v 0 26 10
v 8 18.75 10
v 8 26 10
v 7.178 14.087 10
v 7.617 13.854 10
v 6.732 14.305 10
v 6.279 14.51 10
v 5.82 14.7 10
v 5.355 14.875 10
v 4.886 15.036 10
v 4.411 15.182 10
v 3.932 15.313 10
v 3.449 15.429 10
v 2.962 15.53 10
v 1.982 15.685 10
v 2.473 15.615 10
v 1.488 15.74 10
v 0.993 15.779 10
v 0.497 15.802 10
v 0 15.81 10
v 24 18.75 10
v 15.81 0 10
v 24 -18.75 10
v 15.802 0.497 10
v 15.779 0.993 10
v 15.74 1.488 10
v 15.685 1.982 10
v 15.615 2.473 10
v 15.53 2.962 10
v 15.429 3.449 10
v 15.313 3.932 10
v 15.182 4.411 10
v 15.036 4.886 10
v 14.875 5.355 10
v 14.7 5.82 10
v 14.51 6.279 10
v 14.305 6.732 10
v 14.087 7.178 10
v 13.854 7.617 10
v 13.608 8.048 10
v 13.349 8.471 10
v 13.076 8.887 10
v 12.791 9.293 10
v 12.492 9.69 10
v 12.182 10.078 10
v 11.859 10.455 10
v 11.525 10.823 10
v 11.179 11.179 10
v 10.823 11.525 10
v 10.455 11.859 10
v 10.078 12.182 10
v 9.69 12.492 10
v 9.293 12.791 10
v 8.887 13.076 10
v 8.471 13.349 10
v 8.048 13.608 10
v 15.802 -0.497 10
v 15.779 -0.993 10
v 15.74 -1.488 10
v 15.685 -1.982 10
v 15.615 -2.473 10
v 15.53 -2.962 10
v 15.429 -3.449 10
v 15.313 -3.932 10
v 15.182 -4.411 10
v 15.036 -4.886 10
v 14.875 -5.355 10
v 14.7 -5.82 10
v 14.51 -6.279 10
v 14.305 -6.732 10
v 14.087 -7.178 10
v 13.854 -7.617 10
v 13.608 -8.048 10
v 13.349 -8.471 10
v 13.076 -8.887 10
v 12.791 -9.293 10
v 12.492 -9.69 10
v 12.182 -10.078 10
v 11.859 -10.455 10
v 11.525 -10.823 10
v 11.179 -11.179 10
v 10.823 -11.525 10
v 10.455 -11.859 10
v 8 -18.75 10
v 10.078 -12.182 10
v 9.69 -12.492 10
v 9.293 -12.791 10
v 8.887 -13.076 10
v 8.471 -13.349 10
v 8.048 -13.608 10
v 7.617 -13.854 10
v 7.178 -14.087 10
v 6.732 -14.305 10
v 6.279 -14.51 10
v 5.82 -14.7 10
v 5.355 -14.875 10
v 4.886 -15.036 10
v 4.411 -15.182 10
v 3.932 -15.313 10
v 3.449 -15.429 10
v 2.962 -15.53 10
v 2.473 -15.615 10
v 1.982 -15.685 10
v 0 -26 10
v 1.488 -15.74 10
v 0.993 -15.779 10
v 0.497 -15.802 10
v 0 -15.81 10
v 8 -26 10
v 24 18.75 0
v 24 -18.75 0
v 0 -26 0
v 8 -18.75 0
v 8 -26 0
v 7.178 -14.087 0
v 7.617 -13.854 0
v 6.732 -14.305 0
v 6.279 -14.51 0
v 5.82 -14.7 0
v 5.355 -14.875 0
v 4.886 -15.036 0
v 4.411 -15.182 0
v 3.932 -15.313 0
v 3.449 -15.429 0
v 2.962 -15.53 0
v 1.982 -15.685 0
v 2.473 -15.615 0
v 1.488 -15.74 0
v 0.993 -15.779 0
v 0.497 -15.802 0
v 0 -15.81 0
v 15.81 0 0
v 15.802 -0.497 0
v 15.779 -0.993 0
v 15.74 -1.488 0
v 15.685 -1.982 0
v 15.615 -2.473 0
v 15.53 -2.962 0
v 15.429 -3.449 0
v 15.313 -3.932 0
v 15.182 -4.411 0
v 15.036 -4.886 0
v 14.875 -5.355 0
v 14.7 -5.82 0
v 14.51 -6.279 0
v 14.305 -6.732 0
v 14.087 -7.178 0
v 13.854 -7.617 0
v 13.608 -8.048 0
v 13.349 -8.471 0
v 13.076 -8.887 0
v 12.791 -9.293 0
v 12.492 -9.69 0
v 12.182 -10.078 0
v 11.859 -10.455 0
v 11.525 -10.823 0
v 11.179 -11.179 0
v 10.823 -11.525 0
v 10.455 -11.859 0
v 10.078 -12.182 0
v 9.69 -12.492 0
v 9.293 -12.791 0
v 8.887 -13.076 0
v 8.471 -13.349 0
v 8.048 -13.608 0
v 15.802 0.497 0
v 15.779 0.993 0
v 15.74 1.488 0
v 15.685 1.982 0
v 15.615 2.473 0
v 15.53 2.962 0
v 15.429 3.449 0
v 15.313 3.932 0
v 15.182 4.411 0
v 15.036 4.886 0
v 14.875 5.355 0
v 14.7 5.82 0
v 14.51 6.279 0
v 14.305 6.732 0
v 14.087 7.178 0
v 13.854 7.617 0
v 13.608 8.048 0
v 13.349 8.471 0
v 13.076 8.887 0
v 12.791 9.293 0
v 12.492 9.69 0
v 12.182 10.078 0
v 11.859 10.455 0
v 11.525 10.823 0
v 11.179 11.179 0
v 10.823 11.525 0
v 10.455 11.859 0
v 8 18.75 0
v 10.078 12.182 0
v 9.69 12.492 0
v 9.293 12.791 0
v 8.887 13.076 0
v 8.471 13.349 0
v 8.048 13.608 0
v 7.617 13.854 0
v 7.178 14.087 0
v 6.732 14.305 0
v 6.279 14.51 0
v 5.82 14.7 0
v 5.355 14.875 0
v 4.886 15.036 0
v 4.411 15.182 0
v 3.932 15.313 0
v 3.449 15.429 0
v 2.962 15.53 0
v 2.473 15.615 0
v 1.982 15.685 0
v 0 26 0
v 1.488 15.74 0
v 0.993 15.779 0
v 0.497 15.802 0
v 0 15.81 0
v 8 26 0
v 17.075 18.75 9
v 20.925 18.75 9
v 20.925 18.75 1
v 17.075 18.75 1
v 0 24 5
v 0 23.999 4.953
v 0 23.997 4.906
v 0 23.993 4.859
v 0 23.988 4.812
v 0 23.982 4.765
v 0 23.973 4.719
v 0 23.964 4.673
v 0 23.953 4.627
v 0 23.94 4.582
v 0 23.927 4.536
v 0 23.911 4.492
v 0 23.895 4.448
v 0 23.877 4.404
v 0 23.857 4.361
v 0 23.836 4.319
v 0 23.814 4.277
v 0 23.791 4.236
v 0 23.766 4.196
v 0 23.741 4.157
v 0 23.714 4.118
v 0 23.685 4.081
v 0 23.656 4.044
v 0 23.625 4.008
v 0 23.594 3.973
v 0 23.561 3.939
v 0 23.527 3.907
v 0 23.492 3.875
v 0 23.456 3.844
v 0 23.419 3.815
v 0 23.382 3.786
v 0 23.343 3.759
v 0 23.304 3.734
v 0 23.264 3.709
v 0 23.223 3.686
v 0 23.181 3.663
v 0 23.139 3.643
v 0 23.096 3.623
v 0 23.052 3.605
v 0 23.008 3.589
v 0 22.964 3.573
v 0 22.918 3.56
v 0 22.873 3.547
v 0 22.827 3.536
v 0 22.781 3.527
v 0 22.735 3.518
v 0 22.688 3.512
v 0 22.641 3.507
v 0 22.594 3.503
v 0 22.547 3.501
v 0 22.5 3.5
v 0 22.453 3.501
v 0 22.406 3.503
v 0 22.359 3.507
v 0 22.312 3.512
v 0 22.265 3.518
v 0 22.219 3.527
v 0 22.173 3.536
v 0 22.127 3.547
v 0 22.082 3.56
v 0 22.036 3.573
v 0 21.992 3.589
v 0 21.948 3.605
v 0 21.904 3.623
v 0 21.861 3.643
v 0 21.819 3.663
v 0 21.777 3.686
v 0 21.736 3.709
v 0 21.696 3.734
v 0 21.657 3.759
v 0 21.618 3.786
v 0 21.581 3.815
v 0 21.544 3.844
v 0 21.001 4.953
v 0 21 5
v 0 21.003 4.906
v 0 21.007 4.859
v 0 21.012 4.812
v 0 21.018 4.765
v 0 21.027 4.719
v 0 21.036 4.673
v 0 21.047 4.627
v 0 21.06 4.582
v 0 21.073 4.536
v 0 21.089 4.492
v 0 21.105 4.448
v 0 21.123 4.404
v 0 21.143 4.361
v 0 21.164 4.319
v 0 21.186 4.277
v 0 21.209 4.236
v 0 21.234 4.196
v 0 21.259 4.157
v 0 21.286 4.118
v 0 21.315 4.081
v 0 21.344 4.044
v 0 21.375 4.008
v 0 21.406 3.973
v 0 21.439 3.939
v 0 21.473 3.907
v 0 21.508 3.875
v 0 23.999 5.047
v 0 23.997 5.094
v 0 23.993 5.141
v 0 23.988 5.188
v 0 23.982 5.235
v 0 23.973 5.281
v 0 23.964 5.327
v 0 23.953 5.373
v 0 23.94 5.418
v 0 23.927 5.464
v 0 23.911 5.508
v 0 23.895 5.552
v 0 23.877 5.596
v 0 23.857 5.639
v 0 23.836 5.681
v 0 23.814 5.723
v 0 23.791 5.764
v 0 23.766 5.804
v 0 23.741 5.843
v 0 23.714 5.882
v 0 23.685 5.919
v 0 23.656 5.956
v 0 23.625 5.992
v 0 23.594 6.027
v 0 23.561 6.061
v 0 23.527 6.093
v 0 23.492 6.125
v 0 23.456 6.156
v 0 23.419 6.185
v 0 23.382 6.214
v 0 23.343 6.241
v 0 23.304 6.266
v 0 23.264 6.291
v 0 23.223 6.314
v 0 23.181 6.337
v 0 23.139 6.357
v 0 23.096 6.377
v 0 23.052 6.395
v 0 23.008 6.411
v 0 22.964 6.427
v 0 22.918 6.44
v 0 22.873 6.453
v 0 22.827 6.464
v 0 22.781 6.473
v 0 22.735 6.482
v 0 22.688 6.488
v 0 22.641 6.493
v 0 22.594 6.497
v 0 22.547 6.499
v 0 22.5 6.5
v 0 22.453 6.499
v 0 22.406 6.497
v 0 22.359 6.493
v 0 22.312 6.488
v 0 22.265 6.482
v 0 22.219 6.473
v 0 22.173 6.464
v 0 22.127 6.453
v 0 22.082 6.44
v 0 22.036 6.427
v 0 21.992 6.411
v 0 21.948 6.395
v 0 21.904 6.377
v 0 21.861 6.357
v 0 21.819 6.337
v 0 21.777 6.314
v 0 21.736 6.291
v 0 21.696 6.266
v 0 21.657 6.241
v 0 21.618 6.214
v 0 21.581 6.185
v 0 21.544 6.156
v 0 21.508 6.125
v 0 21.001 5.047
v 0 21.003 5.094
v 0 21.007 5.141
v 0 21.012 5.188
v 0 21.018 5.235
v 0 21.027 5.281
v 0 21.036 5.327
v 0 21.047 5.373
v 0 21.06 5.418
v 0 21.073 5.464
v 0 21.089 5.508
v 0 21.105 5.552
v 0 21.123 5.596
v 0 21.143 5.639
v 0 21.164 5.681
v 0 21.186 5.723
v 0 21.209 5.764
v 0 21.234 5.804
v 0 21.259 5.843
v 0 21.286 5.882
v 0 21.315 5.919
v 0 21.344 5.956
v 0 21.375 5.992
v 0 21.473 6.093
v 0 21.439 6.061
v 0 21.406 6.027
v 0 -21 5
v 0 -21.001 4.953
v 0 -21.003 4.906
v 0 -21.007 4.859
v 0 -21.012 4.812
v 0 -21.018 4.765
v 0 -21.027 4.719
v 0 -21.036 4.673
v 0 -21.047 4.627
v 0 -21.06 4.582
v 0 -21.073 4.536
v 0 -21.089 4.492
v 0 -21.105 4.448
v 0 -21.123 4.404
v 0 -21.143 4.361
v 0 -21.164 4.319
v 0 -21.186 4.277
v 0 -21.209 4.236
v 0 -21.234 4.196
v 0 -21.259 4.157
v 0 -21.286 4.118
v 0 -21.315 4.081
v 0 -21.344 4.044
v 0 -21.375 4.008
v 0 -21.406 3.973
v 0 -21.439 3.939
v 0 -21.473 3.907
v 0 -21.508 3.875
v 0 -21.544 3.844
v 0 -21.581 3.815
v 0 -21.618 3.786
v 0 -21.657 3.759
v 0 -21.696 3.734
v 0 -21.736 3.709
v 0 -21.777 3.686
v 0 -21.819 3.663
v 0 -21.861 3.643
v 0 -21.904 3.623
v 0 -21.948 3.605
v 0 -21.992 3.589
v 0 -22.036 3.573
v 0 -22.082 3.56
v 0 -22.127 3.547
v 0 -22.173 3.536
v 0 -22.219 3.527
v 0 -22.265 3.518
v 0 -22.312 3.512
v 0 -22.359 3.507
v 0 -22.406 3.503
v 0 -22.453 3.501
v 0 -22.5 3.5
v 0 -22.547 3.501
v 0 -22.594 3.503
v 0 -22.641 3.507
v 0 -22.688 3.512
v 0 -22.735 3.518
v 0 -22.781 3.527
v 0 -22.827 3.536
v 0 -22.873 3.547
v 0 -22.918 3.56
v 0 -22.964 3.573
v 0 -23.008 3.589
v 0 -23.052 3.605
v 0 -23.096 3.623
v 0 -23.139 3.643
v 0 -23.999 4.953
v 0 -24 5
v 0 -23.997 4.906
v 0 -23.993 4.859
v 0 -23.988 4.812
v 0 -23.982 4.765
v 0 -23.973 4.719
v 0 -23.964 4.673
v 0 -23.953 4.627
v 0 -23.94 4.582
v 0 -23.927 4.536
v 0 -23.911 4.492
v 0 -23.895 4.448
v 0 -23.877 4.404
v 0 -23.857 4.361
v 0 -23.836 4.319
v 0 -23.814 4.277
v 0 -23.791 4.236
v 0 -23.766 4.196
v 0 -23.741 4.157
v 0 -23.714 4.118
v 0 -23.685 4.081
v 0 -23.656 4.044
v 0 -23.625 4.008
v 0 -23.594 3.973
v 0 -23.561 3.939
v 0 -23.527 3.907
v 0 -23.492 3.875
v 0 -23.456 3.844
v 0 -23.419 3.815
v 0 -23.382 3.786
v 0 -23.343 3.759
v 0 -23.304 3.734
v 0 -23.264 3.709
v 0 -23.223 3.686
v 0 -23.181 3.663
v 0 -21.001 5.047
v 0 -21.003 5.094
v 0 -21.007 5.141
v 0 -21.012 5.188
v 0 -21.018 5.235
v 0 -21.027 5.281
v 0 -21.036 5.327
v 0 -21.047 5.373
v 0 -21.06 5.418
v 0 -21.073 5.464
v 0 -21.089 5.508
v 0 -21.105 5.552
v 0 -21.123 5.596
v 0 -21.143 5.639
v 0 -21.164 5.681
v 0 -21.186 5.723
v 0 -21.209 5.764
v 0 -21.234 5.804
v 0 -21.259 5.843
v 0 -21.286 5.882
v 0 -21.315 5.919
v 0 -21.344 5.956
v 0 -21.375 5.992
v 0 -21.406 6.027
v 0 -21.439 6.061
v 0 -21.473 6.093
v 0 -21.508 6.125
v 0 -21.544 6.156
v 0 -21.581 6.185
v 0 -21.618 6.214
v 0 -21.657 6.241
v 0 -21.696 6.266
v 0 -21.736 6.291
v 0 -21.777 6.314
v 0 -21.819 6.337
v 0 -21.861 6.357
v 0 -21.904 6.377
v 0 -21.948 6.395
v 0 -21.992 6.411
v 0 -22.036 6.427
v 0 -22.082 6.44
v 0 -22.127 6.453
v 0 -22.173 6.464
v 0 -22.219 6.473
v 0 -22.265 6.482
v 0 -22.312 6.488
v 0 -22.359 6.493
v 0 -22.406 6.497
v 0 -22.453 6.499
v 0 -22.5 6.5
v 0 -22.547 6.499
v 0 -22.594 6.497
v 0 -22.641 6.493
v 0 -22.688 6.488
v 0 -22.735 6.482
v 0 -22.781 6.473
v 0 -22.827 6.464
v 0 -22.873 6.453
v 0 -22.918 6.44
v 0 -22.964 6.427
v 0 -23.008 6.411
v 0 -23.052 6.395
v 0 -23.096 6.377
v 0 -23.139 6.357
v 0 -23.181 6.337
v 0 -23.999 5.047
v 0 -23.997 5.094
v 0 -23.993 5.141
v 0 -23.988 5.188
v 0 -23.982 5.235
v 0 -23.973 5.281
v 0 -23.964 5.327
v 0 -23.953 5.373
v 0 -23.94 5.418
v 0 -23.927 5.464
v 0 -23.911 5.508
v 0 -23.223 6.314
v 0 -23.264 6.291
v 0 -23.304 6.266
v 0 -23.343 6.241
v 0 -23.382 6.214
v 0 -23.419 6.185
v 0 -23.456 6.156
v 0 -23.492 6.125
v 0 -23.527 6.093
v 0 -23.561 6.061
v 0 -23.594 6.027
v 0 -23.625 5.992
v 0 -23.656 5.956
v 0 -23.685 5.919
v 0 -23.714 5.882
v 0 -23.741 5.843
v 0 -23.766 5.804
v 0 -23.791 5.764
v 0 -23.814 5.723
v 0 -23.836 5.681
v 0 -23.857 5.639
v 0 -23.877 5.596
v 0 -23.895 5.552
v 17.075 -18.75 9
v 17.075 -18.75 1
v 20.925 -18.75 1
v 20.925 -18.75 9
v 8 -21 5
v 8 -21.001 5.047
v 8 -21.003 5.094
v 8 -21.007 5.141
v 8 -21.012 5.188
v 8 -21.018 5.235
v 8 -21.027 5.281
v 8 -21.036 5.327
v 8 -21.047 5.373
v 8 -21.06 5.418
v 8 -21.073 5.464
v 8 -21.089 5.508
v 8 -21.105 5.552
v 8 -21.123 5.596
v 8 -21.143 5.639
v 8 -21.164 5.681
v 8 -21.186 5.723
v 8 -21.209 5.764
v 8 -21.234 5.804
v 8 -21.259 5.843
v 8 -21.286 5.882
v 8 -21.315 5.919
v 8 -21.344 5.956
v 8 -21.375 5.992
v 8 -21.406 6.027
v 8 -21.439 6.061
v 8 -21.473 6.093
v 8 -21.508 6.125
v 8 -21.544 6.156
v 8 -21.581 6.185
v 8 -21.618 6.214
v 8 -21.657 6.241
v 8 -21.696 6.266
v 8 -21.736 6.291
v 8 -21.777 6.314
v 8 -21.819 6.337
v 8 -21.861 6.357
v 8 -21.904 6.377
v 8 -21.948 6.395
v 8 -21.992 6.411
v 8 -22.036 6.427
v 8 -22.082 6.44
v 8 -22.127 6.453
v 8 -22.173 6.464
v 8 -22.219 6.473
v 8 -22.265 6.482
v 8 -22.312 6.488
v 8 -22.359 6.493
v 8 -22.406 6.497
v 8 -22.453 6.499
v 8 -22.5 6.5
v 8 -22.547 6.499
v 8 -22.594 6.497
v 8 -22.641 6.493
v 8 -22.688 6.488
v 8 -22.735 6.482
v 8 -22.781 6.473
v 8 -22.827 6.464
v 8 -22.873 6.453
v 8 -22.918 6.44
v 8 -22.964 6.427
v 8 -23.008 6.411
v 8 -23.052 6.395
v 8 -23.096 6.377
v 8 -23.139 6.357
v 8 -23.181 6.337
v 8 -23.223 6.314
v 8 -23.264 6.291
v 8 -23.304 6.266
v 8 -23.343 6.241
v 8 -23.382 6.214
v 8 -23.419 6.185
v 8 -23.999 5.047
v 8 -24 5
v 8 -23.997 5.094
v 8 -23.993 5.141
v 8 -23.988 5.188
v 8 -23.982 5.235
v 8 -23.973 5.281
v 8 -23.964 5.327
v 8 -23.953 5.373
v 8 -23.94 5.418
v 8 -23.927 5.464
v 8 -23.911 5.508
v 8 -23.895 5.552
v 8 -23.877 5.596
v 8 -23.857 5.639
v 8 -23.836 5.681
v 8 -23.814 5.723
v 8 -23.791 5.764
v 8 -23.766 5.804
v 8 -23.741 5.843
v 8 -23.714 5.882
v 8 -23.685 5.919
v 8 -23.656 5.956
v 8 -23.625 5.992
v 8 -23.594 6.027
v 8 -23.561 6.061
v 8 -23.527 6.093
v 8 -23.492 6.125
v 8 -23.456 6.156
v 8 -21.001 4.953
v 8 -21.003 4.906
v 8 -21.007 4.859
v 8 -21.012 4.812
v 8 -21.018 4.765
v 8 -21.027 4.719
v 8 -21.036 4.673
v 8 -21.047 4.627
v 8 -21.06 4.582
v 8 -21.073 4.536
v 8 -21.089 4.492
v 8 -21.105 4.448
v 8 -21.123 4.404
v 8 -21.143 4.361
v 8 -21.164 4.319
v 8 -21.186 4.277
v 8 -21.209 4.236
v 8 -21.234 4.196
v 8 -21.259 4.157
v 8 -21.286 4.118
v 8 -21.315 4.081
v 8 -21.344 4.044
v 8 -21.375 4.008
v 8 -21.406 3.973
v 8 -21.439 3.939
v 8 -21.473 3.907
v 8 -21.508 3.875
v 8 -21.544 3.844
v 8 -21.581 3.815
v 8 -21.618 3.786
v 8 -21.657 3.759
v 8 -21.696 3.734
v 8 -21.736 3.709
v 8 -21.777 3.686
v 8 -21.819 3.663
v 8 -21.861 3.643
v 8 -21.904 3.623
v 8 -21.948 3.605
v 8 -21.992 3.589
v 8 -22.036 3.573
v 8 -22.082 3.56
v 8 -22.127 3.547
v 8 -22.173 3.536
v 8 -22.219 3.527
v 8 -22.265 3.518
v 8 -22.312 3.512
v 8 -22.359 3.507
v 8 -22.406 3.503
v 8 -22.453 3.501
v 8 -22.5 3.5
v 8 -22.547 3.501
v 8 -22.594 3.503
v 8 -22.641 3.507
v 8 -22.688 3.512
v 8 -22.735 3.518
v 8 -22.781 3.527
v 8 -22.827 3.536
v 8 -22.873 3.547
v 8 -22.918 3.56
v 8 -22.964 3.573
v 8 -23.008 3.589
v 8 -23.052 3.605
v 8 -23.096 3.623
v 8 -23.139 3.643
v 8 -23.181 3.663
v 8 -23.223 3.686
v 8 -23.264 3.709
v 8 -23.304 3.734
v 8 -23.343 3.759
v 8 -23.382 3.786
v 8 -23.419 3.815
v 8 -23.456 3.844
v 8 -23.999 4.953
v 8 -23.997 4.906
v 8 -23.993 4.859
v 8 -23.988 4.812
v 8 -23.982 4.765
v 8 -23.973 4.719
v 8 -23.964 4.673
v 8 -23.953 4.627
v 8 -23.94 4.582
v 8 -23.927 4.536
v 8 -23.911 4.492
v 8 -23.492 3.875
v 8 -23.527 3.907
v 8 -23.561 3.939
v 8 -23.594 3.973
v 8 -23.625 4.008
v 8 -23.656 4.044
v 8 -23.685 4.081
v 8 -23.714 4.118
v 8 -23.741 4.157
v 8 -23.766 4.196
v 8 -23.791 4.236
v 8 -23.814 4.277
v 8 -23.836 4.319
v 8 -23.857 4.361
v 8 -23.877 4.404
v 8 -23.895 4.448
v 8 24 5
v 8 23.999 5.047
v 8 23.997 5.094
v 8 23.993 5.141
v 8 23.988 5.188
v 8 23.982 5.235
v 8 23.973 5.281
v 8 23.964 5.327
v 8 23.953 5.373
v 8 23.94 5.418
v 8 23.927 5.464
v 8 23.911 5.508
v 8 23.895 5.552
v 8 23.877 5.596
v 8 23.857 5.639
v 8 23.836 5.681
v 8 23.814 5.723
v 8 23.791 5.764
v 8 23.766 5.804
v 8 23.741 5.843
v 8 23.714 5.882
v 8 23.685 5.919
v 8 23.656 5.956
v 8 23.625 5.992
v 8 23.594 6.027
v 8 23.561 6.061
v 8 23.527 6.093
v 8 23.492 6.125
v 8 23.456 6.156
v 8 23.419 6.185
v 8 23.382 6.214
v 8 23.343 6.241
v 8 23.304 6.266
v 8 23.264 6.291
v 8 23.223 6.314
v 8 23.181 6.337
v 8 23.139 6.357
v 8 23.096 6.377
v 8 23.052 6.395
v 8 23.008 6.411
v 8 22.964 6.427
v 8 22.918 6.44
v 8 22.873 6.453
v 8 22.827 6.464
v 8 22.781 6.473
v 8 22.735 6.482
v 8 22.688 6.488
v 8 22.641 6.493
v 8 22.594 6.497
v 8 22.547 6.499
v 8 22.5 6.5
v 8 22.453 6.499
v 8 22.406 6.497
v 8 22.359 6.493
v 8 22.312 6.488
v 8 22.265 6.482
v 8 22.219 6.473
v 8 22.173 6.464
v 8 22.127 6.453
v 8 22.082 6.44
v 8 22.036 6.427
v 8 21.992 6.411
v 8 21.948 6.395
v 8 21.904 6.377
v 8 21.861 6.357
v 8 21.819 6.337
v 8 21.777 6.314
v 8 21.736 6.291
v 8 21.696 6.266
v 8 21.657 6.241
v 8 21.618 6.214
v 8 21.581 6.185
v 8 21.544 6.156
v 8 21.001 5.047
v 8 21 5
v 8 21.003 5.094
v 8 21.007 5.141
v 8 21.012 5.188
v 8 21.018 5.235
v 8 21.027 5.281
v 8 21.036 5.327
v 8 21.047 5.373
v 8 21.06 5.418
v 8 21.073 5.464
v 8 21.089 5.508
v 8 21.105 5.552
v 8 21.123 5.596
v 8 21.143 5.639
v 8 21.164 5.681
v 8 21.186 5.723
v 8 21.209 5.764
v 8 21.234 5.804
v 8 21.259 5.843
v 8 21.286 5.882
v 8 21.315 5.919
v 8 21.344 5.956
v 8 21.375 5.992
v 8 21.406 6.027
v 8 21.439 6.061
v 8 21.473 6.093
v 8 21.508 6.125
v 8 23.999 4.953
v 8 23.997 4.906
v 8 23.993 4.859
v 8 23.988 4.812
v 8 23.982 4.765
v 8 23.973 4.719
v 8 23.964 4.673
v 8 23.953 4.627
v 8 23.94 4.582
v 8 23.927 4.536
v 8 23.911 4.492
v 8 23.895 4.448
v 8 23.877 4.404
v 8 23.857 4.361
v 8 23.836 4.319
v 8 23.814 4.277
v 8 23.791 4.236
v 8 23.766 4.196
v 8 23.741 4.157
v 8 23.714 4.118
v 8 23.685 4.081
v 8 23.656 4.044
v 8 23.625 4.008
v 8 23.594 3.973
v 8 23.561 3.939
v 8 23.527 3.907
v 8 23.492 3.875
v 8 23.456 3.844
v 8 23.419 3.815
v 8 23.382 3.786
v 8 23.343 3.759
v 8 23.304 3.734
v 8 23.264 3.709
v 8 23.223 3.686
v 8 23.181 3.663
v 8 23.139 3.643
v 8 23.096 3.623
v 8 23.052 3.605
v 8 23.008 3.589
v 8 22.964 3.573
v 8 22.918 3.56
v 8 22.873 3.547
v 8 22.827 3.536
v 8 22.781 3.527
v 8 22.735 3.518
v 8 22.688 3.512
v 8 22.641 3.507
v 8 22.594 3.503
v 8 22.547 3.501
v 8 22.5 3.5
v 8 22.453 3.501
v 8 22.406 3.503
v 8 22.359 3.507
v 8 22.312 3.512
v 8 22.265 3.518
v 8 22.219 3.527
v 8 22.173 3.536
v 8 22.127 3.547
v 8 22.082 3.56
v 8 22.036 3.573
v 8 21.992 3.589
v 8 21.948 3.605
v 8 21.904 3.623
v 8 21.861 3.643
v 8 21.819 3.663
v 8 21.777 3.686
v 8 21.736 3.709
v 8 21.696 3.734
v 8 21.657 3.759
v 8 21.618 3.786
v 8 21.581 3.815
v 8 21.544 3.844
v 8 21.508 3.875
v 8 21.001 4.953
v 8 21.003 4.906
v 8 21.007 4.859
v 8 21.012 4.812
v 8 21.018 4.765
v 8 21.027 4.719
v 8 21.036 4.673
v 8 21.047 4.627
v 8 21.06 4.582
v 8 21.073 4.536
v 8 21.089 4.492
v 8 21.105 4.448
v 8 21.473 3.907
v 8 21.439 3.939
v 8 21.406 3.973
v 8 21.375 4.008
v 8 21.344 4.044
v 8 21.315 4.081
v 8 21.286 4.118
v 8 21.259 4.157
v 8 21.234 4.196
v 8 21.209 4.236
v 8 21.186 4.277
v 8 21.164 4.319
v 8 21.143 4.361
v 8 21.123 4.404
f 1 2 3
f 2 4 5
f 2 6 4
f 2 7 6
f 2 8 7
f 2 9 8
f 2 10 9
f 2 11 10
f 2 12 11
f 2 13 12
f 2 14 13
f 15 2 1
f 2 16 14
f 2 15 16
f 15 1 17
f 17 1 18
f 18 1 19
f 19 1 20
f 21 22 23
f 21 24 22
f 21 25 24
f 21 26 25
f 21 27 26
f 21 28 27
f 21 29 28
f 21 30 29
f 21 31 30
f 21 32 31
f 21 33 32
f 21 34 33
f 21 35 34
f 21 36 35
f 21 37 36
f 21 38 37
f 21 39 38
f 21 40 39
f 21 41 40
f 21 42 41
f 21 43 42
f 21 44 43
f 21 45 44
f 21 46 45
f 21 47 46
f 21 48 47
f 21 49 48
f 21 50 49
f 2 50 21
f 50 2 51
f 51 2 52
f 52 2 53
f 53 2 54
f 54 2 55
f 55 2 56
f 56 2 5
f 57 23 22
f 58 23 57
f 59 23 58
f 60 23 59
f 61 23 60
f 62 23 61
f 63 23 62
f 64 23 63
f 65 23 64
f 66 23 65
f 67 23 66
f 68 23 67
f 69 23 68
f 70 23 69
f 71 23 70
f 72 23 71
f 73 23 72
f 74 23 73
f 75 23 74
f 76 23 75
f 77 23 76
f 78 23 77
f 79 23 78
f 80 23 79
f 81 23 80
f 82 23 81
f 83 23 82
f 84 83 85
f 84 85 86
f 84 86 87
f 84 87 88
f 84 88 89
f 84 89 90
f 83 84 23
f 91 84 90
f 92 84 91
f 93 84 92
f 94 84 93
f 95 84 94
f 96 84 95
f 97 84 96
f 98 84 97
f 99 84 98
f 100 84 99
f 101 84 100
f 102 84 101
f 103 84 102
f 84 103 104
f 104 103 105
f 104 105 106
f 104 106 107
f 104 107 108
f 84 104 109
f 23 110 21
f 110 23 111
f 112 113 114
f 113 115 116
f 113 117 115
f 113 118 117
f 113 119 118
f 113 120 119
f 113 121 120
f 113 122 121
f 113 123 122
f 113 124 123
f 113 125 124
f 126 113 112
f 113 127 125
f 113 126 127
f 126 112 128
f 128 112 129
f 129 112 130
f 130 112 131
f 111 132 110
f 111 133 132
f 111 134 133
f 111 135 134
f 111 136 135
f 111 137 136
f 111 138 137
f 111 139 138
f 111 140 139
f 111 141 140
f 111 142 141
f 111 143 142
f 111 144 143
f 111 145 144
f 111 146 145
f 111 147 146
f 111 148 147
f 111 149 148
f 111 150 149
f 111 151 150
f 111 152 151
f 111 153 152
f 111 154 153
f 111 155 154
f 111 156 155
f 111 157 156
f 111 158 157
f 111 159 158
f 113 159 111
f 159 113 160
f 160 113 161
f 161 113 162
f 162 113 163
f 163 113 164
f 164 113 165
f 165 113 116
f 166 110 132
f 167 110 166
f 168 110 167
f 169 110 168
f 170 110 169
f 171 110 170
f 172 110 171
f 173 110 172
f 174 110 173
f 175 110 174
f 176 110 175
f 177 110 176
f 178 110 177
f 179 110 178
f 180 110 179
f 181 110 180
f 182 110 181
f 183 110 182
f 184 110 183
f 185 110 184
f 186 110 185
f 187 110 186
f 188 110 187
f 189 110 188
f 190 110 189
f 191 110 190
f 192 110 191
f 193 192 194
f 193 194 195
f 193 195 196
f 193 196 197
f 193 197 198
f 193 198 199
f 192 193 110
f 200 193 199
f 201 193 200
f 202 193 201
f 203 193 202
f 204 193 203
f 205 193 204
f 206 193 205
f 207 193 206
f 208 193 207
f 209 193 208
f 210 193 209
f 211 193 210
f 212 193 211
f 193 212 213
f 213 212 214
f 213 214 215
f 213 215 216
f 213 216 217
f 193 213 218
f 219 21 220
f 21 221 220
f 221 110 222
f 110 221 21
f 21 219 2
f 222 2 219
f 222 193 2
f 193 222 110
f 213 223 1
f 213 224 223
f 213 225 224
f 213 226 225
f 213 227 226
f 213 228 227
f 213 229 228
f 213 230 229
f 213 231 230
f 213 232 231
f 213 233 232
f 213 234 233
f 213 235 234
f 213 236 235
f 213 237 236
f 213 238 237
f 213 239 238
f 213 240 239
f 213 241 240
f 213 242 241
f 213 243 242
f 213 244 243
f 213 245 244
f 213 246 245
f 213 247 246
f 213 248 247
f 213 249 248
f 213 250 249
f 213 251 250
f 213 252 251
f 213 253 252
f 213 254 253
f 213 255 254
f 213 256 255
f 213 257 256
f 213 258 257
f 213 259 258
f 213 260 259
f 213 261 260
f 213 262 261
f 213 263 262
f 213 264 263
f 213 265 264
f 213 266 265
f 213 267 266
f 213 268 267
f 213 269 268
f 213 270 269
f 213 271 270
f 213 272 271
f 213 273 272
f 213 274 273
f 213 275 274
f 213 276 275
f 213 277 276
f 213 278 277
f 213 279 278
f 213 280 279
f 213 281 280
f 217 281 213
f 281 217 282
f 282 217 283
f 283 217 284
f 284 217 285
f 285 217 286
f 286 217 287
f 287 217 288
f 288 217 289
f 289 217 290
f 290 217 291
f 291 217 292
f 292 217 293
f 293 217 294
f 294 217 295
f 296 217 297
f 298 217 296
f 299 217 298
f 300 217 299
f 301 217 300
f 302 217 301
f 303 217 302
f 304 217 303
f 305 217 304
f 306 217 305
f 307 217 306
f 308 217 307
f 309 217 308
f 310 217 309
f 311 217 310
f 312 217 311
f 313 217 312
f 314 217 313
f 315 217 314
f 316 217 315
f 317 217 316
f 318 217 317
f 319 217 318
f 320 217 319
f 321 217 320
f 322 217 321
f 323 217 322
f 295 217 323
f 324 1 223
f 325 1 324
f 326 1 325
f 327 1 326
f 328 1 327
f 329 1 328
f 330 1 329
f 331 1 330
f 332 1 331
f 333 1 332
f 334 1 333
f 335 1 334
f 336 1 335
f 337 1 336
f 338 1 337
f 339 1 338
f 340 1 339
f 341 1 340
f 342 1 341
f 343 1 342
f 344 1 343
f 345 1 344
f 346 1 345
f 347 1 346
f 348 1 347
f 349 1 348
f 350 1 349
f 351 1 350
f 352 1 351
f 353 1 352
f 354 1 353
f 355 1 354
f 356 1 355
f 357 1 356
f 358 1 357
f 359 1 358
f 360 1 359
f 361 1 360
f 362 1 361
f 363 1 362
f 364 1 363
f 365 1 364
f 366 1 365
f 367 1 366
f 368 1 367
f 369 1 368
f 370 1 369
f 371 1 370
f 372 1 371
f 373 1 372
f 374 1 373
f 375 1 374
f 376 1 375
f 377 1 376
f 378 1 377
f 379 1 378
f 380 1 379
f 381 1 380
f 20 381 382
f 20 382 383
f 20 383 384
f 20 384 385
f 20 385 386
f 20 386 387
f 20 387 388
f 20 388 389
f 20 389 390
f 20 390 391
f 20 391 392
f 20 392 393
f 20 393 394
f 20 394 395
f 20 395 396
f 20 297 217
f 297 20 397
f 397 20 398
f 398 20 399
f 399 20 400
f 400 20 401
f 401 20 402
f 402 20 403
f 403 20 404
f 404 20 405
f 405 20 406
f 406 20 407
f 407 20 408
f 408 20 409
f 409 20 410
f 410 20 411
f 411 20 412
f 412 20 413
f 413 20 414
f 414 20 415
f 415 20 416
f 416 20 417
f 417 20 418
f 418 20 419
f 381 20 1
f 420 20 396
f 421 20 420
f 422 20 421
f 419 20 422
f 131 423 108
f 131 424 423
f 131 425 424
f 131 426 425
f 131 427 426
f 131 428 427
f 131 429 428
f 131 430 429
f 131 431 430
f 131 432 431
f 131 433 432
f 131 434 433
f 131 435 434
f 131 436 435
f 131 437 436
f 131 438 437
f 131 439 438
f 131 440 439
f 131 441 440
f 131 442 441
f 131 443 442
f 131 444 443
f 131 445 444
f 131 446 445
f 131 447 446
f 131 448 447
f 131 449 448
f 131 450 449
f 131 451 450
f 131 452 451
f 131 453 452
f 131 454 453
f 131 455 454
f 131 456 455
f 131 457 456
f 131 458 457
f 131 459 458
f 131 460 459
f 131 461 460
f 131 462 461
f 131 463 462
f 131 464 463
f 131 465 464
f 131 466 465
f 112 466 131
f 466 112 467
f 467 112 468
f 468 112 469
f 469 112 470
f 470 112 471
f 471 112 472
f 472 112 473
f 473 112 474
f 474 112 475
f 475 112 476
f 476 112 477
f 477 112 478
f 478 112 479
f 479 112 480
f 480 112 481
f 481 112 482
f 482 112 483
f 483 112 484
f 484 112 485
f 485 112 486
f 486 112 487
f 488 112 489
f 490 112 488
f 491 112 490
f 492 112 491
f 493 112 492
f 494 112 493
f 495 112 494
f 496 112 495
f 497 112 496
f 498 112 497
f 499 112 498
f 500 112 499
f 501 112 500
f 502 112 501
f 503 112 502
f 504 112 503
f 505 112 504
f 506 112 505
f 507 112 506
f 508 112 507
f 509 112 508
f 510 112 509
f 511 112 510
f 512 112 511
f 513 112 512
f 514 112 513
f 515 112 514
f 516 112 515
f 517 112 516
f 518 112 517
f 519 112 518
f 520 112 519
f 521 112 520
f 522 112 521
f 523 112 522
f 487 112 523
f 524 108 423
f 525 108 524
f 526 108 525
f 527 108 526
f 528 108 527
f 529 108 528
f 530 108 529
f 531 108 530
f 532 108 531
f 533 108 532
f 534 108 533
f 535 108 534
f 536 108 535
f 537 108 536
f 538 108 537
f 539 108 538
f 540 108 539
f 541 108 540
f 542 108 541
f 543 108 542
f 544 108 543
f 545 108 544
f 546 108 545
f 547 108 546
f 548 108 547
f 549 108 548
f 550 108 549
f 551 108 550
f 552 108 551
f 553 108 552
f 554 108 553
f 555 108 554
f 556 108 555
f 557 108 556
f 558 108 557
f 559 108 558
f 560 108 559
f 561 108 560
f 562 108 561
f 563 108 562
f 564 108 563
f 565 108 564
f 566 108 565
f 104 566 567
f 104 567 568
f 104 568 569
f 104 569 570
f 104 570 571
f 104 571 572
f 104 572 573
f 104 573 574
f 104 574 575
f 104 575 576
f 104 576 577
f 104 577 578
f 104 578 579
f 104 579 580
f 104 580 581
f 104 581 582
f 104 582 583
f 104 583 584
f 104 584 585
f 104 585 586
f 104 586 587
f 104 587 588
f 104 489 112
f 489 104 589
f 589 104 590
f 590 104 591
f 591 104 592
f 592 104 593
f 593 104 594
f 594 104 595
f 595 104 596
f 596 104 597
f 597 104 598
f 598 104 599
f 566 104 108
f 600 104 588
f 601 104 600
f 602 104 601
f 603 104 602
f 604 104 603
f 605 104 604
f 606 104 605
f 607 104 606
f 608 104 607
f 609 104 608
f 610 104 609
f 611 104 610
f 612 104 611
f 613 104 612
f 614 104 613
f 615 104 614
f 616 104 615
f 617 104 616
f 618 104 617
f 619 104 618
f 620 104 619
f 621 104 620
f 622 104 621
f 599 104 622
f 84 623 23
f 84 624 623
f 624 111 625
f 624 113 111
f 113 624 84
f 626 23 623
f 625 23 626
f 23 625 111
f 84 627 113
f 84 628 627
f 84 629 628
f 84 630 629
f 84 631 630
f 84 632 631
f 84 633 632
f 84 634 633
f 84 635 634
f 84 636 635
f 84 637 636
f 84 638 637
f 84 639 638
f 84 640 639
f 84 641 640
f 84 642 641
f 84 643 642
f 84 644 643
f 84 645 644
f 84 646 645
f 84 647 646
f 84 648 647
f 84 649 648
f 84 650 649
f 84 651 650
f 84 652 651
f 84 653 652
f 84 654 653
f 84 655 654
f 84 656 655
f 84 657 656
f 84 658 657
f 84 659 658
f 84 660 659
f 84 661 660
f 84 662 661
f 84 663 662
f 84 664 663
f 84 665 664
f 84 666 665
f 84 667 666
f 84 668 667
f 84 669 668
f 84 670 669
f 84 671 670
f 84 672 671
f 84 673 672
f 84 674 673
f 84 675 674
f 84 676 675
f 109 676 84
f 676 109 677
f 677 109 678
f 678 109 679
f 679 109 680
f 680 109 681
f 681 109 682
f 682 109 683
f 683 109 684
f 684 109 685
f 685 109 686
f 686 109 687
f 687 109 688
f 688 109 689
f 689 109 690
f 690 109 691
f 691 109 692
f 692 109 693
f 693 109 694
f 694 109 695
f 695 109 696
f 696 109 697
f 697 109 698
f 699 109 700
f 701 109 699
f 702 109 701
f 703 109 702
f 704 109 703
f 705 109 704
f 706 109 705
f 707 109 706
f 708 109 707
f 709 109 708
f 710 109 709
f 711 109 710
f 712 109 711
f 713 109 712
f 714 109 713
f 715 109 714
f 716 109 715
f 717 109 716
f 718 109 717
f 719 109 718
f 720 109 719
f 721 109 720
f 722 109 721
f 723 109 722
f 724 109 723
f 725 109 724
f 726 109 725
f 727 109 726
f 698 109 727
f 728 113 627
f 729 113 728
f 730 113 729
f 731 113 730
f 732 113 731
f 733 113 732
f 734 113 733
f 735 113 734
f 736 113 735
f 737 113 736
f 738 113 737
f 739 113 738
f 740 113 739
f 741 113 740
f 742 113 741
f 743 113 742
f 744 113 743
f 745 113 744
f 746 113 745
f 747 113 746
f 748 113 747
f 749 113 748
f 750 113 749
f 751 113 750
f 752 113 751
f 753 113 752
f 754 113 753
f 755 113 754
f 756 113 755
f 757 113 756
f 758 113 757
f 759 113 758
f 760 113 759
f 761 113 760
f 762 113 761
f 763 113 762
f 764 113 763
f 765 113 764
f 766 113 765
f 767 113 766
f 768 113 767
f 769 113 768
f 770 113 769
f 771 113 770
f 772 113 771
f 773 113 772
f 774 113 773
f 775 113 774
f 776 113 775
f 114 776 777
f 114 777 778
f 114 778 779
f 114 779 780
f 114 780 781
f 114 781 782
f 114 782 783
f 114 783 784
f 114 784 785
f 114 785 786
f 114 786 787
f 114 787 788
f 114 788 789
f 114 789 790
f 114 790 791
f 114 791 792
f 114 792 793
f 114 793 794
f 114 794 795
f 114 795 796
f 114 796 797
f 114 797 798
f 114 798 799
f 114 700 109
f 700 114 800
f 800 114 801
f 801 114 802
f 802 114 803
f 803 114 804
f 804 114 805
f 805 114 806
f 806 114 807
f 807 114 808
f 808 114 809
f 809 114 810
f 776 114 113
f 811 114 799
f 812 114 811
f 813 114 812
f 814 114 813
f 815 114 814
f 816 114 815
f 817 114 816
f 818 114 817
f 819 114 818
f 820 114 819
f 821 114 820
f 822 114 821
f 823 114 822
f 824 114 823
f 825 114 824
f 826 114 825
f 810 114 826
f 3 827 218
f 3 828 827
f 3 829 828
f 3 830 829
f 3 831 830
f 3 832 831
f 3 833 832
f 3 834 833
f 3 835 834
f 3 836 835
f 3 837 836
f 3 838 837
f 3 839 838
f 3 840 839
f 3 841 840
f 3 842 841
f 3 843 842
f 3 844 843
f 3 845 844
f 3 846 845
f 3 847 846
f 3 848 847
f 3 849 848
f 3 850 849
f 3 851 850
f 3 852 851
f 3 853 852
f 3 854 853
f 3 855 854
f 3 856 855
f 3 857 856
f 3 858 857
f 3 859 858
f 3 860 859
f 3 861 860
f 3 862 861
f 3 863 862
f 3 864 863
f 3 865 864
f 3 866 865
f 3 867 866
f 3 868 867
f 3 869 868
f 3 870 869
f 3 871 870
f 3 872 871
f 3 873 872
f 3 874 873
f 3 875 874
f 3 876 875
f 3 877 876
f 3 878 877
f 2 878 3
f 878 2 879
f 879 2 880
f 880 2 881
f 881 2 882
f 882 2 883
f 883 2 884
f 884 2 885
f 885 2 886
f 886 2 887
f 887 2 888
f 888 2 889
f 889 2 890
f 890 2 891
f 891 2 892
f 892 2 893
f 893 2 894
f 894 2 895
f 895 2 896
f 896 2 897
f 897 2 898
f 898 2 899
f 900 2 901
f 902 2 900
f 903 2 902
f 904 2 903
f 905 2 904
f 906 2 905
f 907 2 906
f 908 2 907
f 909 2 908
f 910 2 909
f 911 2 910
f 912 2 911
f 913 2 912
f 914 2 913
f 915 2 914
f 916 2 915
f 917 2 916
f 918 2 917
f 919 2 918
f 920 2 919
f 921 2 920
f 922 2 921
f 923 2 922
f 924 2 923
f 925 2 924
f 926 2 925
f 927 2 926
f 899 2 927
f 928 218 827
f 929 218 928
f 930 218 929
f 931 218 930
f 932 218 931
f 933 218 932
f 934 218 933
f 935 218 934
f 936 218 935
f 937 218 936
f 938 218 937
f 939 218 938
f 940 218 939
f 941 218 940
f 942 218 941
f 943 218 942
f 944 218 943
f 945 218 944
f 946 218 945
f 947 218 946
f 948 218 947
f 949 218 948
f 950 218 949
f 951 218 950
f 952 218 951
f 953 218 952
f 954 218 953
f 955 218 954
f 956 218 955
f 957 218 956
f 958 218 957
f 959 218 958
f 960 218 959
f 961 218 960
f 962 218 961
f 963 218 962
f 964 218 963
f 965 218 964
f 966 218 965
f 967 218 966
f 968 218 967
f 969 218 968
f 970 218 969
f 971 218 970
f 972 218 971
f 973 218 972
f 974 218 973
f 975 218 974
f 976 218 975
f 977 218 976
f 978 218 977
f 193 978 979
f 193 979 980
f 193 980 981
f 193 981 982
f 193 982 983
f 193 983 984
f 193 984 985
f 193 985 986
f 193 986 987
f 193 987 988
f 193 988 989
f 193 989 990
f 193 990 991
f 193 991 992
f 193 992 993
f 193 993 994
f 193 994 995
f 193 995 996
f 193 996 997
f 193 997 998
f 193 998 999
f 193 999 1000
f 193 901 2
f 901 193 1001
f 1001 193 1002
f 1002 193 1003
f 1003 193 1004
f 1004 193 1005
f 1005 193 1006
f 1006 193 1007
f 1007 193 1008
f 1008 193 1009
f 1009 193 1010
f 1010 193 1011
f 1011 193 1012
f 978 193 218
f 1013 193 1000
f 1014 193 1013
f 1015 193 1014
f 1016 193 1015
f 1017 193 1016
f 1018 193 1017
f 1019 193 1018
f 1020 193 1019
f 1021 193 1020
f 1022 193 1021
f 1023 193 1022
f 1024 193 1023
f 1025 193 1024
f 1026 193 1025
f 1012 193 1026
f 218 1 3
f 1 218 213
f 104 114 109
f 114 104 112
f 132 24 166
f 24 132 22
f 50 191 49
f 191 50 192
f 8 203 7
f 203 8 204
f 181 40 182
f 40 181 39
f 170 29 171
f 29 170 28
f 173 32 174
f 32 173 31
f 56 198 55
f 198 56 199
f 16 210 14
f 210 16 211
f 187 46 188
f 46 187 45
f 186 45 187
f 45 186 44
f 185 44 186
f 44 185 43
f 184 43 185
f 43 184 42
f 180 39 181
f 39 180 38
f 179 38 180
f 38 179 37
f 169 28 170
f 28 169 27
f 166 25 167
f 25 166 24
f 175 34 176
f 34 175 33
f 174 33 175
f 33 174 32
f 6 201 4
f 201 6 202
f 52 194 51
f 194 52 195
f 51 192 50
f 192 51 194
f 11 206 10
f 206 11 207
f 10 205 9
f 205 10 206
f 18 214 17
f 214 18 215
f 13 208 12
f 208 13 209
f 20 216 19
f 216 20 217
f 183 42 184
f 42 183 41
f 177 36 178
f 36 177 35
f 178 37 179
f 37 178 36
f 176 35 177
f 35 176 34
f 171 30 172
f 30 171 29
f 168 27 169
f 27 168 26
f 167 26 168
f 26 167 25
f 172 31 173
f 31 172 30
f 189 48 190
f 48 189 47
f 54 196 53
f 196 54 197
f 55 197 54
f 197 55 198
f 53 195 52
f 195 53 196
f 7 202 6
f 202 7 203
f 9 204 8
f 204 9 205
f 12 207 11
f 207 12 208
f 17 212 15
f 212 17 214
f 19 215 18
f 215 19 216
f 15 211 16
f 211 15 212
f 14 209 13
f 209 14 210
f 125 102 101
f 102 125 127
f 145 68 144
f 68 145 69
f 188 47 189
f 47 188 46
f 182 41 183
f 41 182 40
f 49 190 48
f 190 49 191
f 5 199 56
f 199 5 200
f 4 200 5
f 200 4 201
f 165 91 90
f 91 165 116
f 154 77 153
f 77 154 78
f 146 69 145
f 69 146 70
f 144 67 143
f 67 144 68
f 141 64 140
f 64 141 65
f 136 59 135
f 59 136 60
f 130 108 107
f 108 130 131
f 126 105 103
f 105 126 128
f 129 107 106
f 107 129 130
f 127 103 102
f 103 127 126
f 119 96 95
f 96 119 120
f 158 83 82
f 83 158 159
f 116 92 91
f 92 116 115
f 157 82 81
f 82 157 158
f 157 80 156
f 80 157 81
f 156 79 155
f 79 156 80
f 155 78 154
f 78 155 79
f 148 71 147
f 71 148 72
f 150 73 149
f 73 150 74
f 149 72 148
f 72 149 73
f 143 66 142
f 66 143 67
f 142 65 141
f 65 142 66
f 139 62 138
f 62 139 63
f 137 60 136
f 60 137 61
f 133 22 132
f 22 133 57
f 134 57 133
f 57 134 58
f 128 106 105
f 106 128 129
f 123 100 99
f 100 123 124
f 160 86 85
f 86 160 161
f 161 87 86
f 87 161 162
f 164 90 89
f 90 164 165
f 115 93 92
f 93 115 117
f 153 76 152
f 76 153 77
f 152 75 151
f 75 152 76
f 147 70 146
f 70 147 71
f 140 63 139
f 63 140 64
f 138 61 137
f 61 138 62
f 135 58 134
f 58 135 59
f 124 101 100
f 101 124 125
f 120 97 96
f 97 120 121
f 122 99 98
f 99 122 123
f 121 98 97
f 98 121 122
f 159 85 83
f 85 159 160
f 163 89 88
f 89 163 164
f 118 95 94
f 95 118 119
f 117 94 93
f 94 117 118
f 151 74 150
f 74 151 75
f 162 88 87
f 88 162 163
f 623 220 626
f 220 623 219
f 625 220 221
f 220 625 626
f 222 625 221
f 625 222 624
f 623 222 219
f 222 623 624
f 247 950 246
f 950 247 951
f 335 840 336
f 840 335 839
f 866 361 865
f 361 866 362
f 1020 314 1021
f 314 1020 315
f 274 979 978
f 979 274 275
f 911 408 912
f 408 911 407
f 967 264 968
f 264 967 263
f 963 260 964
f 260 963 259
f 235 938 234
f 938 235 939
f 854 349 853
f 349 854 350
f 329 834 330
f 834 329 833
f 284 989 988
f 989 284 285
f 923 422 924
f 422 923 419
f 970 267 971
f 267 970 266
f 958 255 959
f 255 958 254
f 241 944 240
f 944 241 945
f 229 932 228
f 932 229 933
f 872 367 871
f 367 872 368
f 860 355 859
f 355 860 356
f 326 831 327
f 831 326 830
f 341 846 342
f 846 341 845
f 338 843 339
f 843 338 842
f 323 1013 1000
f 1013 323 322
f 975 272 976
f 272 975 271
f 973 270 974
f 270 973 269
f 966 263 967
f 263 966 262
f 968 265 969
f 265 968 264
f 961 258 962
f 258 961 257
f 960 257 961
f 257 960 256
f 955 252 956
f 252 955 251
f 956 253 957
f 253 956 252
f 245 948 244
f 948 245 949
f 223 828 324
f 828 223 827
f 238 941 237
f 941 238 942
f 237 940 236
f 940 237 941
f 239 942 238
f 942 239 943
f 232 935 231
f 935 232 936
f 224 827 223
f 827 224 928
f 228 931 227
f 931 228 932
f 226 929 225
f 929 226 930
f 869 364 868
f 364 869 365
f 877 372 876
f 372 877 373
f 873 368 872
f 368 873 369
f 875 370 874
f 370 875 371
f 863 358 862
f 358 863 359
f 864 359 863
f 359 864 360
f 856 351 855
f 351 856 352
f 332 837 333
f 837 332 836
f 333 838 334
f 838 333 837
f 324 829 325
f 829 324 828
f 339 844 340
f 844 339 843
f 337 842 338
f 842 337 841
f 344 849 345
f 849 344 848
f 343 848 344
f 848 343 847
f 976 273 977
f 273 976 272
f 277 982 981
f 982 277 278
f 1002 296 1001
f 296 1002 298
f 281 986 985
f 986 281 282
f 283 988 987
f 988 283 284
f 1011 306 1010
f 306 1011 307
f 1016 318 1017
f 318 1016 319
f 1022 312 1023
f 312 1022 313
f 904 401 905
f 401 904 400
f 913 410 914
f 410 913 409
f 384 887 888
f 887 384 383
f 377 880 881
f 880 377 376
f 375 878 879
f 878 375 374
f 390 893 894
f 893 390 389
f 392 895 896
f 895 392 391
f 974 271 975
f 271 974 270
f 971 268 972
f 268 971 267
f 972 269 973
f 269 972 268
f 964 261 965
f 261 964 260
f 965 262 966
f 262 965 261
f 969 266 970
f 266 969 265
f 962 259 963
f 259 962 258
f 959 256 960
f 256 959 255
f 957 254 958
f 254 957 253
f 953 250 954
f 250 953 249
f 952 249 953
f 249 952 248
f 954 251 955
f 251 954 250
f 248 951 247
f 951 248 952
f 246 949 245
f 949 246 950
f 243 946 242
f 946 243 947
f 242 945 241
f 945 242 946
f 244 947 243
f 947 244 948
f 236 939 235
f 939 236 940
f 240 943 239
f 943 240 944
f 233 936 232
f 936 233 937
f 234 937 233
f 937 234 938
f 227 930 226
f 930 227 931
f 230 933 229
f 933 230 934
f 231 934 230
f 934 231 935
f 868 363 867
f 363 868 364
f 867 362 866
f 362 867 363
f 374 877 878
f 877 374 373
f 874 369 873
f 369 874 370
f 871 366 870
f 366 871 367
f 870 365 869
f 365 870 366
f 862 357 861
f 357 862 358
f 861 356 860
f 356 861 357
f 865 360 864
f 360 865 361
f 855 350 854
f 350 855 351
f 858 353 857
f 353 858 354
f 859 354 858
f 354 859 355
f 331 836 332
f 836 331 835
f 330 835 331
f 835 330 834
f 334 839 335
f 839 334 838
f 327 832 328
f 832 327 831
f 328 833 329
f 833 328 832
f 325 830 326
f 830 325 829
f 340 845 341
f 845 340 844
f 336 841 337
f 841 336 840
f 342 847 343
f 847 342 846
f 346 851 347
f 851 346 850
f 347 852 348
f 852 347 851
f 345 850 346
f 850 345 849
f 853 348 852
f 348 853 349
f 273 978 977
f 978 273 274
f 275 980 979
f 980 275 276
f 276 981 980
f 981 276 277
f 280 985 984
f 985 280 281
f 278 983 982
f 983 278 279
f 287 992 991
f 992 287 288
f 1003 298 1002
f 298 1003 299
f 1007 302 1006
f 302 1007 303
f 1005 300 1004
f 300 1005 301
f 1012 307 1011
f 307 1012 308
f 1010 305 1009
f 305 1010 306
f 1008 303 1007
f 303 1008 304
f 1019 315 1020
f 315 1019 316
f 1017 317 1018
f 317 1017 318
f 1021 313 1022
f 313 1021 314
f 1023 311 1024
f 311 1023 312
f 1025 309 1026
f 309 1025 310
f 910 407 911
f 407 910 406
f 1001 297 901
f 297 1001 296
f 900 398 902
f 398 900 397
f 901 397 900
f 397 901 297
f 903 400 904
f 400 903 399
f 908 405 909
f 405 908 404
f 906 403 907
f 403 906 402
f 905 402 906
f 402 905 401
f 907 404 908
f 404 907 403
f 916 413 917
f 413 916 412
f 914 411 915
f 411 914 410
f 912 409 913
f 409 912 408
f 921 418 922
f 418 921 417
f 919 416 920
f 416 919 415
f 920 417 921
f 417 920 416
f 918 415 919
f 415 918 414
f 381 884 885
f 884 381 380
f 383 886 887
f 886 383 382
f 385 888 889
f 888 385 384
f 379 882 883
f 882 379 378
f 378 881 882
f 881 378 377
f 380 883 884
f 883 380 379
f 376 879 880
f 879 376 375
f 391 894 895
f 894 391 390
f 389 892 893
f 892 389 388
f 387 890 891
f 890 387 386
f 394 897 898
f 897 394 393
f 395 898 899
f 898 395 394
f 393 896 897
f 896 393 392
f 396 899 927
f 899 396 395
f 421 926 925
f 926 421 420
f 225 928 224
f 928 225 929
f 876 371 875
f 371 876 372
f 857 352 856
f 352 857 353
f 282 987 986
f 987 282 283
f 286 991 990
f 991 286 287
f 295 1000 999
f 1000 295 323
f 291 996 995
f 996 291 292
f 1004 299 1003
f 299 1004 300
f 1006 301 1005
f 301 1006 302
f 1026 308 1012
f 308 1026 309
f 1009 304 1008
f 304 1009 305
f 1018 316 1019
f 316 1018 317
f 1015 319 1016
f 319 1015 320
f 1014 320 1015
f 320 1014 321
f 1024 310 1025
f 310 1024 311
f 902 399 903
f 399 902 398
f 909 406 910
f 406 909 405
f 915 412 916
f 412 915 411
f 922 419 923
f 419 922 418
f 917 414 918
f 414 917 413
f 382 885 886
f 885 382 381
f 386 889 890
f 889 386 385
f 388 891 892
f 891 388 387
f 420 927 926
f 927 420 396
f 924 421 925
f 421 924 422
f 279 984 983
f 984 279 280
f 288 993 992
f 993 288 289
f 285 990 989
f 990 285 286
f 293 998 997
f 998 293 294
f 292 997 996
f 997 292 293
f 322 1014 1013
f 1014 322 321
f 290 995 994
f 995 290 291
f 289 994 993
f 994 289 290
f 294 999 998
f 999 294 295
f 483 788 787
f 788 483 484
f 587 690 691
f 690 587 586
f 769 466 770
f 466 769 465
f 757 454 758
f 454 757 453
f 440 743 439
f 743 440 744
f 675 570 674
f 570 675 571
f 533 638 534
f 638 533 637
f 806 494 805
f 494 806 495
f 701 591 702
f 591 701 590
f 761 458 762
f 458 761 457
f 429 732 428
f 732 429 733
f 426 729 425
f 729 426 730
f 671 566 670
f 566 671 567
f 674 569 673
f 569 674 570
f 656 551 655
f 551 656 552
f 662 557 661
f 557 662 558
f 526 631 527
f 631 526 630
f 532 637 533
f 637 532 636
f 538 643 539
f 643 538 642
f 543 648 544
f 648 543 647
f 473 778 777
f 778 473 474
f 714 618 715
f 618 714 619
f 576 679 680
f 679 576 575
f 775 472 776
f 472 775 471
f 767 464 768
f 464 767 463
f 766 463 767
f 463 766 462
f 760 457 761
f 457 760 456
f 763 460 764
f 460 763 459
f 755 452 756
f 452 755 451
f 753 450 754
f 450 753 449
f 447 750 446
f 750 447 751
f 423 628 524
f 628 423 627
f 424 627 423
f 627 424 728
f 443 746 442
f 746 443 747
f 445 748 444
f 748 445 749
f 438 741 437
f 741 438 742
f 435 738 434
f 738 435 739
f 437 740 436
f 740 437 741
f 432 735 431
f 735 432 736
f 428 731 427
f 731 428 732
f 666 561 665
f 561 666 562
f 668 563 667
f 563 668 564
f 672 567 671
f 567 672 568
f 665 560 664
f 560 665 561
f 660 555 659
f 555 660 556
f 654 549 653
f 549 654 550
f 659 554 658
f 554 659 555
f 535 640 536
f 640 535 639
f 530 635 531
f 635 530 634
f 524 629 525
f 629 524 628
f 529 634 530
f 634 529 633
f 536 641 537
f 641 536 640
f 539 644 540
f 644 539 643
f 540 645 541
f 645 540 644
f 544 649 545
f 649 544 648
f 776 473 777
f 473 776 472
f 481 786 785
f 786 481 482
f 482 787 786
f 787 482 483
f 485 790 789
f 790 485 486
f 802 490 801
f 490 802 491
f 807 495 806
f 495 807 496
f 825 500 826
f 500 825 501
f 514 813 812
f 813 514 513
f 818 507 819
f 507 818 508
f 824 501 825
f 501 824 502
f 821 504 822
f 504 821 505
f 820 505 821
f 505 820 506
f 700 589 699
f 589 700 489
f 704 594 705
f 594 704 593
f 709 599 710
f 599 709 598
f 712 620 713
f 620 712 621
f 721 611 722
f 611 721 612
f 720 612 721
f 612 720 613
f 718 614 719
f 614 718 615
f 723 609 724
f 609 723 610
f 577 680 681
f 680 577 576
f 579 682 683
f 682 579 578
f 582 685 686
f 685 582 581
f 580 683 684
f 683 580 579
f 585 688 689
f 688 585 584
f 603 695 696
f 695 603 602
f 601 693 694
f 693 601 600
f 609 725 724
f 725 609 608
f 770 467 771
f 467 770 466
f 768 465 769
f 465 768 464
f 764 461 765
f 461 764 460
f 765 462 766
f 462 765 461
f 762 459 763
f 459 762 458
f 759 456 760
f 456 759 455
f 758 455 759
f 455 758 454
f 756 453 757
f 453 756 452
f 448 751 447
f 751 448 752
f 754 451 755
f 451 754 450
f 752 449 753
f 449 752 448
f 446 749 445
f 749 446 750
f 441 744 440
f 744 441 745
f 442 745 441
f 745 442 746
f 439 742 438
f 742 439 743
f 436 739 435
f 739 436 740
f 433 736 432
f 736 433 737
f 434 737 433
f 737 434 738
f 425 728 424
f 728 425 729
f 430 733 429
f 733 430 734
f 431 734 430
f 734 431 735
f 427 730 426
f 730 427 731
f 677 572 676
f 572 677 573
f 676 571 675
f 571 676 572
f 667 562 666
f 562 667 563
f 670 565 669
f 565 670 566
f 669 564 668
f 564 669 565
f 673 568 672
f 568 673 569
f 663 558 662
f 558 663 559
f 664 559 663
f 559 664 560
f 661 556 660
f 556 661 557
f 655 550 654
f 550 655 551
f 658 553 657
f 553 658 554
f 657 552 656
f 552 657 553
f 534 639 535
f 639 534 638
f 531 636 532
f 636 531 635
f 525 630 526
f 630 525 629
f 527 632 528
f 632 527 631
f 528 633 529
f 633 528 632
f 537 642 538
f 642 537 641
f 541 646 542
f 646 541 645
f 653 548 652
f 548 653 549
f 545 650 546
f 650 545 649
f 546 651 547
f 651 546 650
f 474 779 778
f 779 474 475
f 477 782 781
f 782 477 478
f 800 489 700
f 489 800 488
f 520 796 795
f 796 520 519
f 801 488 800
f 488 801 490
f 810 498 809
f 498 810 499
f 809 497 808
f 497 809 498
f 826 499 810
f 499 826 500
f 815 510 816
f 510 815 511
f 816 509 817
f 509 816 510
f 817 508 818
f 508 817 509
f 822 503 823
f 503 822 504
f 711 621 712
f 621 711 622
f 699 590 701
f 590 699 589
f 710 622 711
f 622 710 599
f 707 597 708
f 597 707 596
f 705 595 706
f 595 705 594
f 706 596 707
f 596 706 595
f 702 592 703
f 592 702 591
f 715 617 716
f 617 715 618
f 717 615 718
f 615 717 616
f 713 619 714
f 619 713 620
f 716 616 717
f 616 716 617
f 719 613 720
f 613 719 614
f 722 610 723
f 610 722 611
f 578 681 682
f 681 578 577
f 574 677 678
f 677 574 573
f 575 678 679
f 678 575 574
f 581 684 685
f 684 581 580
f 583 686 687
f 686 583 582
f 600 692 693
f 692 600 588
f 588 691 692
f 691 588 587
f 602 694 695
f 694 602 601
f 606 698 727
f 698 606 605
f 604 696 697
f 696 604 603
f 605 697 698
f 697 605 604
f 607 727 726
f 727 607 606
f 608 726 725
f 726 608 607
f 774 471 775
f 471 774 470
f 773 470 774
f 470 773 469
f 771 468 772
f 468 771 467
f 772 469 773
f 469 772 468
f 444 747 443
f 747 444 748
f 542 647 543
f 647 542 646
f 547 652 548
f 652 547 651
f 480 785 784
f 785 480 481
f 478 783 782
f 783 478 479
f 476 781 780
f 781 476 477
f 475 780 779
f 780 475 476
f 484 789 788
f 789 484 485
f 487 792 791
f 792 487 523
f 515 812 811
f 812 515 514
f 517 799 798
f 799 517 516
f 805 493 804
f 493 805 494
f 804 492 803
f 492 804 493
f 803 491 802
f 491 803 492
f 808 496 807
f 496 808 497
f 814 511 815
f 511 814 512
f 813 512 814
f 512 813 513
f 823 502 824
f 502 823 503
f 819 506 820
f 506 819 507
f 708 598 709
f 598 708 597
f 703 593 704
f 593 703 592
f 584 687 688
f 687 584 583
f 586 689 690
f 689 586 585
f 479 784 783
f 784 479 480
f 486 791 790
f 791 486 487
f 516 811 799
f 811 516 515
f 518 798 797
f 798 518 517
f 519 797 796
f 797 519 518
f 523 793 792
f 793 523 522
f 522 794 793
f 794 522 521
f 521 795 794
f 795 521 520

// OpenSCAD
$fn = 200;

module FlashLightHolderTop() {
    difference(){
        union(){
            translate([0, 0, 12]){
                cube([10, 37.5, 24], center=true);
            }
            translate([0, 0, 4]){
                cube([10, 52, 8], center=true);
            }
        }
        translate([-20, 0, 0]){
            rotate([0, 90, 0]){
                cylinder(h=40, d=31.62);
            }
        }
        translate([0, 0, 19]){
            cube([8, 50, 3.85], center=true);
        }
        translate([0, 22.5, -50]){
            rotate([0, 0, 0]){
                cylinder(h=100, d=3);
            }
        }
        translate([0, -22.5, -50]){
            rotate([0, 0, 0]){
                cylinder(h=100, d=3);
            }
        }
    }
}
translate([0, 0, 5]){rotate([0, 90, 0]){
    FlashLightHolderTop();
}}
